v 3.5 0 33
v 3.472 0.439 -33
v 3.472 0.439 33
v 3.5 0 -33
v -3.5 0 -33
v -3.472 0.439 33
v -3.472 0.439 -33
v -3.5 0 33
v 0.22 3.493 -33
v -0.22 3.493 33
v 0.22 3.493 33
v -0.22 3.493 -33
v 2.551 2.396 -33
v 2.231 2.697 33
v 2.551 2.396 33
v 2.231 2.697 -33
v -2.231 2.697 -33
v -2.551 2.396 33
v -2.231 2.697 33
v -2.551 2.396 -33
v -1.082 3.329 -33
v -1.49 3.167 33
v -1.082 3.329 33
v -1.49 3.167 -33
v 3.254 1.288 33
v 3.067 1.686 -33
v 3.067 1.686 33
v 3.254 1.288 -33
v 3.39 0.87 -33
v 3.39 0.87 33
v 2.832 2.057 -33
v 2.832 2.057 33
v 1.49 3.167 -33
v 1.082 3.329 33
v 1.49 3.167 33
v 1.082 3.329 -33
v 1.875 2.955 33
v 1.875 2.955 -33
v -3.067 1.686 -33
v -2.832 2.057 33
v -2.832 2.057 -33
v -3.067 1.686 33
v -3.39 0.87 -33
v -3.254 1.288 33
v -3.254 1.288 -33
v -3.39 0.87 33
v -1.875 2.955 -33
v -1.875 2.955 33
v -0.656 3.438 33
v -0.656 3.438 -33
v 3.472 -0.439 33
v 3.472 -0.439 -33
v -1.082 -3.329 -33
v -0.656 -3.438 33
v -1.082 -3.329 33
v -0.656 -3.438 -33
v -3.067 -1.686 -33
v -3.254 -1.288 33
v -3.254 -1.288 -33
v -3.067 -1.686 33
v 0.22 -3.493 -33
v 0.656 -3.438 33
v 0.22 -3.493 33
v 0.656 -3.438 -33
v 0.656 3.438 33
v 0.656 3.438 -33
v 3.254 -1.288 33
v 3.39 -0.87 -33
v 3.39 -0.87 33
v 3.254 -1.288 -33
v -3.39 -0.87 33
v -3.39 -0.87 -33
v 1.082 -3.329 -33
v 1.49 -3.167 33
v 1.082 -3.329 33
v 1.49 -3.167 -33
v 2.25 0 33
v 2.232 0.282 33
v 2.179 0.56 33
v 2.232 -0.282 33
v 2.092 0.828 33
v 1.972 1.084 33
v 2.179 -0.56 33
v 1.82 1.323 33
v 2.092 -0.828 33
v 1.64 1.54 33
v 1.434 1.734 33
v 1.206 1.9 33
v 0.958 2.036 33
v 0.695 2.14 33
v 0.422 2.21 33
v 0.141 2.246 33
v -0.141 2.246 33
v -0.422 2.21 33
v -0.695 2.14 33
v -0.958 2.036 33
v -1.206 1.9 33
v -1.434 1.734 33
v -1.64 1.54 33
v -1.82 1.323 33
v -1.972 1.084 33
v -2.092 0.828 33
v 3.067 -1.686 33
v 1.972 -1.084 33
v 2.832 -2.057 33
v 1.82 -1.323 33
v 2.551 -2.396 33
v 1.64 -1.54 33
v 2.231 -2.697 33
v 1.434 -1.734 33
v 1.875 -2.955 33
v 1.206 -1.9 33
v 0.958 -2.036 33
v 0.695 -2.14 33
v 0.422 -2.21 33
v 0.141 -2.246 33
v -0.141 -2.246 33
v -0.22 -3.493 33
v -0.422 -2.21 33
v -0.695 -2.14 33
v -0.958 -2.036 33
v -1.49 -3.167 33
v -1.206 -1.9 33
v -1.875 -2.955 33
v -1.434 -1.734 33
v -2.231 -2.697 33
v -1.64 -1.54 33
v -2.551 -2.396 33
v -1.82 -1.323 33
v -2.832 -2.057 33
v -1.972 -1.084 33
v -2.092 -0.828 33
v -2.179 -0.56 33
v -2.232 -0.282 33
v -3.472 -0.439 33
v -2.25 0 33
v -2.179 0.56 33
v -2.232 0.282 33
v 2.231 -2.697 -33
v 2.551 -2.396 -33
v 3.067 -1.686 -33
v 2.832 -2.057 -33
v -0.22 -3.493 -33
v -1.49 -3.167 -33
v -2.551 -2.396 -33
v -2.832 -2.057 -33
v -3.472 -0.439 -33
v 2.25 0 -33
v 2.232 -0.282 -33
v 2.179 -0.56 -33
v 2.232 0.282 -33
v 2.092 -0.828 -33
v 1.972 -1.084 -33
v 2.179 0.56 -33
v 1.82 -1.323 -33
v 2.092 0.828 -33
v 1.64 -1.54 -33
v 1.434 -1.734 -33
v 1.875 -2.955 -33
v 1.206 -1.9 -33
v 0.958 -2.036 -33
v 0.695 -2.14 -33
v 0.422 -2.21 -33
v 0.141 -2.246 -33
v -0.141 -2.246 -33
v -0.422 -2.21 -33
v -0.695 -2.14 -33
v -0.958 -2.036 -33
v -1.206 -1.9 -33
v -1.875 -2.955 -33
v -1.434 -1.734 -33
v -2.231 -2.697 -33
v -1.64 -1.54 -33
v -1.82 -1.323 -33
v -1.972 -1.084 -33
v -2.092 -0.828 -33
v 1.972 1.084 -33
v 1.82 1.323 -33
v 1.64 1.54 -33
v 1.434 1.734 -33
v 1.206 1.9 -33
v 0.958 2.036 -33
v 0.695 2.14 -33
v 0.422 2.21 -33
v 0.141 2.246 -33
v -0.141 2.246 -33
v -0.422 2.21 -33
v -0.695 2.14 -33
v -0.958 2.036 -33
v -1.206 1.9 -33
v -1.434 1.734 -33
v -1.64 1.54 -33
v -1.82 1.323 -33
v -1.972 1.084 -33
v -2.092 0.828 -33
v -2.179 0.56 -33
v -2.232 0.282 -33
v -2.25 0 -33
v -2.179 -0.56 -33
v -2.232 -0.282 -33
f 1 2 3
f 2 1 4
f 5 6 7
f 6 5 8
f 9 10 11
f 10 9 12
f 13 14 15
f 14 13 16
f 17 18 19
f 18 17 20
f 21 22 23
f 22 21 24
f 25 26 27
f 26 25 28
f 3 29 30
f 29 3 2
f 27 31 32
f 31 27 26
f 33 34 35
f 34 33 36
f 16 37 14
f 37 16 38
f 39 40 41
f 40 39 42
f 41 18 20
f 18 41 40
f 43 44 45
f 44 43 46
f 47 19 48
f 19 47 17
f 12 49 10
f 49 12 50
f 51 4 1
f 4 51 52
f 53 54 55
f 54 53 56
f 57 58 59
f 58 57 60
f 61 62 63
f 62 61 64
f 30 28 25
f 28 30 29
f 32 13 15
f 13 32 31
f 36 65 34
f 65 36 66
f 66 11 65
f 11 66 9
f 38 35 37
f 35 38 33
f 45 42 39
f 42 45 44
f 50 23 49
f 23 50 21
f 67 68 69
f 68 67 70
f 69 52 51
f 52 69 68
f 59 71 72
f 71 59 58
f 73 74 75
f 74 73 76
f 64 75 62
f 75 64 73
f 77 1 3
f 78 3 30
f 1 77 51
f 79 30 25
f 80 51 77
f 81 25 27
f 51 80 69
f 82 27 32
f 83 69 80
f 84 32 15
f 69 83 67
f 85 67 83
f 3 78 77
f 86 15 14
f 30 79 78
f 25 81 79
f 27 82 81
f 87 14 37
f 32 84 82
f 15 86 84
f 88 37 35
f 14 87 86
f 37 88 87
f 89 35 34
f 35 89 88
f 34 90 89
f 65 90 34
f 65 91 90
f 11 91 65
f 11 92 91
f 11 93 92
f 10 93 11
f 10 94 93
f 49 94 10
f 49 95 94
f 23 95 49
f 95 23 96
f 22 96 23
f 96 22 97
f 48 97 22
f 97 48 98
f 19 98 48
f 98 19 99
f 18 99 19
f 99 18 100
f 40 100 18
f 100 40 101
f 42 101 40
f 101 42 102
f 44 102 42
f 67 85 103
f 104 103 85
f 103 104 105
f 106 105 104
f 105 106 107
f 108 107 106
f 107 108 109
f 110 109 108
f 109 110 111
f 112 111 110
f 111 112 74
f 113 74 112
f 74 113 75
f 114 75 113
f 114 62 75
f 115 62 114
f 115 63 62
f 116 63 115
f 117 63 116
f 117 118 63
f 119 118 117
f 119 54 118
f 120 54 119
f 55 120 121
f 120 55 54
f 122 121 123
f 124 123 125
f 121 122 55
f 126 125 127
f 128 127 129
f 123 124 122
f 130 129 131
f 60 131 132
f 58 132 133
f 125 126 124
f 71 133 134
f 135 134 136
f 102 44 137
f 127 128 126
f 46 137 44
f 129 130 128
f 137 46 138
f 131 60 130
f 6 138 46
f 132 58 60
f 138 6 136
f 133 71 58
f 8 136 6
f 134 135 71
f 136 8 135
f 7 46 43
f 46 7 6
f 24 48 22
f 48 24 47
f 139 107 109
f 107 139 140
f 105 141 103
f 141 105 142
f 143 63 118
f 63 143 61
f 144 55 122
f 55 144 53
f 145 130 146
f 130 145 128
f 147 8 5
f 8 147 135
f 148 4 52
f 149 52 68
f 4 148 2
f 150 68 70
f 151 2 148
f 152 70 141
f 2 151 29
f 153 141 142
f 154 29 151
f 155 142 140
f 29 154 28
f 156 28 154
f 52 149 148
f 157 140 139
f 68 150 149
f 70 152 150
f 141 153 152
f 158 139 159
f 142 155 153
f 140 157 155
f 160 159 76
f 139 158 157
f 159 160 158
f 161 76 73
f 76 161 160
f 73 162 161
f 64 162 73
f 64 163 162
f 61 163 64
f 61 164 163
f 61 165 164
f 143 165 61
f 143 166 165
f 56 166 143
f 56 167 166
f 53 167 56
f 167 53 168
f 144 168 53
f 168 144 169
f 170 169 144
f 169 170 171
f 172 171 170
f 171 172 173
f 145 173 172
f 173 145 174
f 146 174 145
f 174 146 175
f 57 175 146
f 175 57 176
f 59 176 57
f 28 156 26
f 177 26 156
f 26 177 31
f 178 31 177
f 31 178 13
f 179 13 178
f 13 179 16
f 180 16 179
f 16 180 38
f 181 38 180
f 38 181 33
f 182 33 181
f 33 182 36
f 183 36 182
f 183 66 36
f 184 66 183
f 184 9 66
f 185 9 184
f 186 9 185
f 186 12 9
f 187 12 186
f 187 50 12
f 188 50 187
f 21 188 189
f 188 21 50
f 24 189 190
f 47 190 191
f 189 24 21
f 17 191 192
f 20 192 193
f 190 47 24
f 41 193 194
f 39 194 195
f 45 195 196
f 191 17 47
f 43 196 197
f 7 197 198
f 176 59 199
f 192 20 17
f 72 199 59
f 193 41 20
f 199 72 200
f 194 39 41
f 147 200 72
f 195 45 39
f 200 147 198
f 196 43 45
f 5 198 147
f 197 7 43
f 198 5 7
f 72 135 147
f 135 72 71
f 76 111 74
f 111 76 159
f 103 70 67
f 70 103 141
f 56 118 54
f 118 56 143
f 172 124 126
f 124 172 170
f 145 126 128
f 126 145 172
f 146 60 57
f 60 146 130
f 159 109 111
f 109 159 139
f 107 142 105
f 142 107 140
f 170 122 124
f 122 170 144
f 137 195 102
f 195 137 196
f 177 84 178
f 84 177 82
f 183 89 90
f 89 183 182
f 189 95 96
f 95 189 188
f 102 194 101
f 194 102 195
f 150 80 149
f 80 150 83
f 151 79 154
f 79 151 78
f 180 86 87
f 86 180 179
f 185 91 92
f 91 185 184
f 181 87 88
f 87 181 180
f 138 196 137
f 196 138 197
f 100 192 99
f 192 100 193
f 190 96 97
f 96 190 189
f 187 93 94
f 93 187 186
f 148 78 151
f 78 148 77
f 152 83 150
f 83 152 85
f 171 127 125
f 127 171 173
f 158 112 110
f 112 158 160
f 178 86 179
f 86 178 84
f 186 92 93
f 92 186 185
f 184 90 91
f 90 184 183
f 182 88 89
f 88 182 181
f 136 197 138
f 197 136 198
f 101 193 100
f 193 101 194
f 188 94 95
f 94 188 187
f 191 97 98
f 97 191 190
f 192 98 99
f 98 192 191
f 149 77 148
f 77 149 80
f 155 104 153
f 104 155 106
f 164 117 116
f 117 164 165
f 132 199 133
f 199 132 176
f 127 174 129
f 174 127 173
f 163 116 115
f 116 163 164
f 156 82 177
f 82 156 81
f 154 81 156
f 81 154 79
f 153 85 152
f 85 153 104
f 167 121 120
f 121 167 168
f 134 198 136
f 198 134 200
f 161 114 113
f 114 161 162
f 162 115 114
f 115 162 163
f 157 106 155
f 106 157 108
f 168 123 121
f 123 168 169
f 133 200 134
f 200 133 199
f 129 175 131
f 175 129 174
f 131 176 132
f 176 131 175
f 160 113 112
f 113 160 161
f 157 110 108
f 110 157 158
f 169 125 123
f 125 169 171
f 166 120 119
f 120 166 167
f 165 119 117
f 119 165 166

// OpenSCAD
$fn = 50;


difference() {
	union() {
		translate(v = [0, 0, -33.0000000000]) {
			cylinder(h = 66, r = 3.5000000000);
		}
	}
	union() {
		translate(v = [0, 0, -100.0000000000]) {
			cylinder(h = 200, r = 2.2500000000);
		}
	}
}
